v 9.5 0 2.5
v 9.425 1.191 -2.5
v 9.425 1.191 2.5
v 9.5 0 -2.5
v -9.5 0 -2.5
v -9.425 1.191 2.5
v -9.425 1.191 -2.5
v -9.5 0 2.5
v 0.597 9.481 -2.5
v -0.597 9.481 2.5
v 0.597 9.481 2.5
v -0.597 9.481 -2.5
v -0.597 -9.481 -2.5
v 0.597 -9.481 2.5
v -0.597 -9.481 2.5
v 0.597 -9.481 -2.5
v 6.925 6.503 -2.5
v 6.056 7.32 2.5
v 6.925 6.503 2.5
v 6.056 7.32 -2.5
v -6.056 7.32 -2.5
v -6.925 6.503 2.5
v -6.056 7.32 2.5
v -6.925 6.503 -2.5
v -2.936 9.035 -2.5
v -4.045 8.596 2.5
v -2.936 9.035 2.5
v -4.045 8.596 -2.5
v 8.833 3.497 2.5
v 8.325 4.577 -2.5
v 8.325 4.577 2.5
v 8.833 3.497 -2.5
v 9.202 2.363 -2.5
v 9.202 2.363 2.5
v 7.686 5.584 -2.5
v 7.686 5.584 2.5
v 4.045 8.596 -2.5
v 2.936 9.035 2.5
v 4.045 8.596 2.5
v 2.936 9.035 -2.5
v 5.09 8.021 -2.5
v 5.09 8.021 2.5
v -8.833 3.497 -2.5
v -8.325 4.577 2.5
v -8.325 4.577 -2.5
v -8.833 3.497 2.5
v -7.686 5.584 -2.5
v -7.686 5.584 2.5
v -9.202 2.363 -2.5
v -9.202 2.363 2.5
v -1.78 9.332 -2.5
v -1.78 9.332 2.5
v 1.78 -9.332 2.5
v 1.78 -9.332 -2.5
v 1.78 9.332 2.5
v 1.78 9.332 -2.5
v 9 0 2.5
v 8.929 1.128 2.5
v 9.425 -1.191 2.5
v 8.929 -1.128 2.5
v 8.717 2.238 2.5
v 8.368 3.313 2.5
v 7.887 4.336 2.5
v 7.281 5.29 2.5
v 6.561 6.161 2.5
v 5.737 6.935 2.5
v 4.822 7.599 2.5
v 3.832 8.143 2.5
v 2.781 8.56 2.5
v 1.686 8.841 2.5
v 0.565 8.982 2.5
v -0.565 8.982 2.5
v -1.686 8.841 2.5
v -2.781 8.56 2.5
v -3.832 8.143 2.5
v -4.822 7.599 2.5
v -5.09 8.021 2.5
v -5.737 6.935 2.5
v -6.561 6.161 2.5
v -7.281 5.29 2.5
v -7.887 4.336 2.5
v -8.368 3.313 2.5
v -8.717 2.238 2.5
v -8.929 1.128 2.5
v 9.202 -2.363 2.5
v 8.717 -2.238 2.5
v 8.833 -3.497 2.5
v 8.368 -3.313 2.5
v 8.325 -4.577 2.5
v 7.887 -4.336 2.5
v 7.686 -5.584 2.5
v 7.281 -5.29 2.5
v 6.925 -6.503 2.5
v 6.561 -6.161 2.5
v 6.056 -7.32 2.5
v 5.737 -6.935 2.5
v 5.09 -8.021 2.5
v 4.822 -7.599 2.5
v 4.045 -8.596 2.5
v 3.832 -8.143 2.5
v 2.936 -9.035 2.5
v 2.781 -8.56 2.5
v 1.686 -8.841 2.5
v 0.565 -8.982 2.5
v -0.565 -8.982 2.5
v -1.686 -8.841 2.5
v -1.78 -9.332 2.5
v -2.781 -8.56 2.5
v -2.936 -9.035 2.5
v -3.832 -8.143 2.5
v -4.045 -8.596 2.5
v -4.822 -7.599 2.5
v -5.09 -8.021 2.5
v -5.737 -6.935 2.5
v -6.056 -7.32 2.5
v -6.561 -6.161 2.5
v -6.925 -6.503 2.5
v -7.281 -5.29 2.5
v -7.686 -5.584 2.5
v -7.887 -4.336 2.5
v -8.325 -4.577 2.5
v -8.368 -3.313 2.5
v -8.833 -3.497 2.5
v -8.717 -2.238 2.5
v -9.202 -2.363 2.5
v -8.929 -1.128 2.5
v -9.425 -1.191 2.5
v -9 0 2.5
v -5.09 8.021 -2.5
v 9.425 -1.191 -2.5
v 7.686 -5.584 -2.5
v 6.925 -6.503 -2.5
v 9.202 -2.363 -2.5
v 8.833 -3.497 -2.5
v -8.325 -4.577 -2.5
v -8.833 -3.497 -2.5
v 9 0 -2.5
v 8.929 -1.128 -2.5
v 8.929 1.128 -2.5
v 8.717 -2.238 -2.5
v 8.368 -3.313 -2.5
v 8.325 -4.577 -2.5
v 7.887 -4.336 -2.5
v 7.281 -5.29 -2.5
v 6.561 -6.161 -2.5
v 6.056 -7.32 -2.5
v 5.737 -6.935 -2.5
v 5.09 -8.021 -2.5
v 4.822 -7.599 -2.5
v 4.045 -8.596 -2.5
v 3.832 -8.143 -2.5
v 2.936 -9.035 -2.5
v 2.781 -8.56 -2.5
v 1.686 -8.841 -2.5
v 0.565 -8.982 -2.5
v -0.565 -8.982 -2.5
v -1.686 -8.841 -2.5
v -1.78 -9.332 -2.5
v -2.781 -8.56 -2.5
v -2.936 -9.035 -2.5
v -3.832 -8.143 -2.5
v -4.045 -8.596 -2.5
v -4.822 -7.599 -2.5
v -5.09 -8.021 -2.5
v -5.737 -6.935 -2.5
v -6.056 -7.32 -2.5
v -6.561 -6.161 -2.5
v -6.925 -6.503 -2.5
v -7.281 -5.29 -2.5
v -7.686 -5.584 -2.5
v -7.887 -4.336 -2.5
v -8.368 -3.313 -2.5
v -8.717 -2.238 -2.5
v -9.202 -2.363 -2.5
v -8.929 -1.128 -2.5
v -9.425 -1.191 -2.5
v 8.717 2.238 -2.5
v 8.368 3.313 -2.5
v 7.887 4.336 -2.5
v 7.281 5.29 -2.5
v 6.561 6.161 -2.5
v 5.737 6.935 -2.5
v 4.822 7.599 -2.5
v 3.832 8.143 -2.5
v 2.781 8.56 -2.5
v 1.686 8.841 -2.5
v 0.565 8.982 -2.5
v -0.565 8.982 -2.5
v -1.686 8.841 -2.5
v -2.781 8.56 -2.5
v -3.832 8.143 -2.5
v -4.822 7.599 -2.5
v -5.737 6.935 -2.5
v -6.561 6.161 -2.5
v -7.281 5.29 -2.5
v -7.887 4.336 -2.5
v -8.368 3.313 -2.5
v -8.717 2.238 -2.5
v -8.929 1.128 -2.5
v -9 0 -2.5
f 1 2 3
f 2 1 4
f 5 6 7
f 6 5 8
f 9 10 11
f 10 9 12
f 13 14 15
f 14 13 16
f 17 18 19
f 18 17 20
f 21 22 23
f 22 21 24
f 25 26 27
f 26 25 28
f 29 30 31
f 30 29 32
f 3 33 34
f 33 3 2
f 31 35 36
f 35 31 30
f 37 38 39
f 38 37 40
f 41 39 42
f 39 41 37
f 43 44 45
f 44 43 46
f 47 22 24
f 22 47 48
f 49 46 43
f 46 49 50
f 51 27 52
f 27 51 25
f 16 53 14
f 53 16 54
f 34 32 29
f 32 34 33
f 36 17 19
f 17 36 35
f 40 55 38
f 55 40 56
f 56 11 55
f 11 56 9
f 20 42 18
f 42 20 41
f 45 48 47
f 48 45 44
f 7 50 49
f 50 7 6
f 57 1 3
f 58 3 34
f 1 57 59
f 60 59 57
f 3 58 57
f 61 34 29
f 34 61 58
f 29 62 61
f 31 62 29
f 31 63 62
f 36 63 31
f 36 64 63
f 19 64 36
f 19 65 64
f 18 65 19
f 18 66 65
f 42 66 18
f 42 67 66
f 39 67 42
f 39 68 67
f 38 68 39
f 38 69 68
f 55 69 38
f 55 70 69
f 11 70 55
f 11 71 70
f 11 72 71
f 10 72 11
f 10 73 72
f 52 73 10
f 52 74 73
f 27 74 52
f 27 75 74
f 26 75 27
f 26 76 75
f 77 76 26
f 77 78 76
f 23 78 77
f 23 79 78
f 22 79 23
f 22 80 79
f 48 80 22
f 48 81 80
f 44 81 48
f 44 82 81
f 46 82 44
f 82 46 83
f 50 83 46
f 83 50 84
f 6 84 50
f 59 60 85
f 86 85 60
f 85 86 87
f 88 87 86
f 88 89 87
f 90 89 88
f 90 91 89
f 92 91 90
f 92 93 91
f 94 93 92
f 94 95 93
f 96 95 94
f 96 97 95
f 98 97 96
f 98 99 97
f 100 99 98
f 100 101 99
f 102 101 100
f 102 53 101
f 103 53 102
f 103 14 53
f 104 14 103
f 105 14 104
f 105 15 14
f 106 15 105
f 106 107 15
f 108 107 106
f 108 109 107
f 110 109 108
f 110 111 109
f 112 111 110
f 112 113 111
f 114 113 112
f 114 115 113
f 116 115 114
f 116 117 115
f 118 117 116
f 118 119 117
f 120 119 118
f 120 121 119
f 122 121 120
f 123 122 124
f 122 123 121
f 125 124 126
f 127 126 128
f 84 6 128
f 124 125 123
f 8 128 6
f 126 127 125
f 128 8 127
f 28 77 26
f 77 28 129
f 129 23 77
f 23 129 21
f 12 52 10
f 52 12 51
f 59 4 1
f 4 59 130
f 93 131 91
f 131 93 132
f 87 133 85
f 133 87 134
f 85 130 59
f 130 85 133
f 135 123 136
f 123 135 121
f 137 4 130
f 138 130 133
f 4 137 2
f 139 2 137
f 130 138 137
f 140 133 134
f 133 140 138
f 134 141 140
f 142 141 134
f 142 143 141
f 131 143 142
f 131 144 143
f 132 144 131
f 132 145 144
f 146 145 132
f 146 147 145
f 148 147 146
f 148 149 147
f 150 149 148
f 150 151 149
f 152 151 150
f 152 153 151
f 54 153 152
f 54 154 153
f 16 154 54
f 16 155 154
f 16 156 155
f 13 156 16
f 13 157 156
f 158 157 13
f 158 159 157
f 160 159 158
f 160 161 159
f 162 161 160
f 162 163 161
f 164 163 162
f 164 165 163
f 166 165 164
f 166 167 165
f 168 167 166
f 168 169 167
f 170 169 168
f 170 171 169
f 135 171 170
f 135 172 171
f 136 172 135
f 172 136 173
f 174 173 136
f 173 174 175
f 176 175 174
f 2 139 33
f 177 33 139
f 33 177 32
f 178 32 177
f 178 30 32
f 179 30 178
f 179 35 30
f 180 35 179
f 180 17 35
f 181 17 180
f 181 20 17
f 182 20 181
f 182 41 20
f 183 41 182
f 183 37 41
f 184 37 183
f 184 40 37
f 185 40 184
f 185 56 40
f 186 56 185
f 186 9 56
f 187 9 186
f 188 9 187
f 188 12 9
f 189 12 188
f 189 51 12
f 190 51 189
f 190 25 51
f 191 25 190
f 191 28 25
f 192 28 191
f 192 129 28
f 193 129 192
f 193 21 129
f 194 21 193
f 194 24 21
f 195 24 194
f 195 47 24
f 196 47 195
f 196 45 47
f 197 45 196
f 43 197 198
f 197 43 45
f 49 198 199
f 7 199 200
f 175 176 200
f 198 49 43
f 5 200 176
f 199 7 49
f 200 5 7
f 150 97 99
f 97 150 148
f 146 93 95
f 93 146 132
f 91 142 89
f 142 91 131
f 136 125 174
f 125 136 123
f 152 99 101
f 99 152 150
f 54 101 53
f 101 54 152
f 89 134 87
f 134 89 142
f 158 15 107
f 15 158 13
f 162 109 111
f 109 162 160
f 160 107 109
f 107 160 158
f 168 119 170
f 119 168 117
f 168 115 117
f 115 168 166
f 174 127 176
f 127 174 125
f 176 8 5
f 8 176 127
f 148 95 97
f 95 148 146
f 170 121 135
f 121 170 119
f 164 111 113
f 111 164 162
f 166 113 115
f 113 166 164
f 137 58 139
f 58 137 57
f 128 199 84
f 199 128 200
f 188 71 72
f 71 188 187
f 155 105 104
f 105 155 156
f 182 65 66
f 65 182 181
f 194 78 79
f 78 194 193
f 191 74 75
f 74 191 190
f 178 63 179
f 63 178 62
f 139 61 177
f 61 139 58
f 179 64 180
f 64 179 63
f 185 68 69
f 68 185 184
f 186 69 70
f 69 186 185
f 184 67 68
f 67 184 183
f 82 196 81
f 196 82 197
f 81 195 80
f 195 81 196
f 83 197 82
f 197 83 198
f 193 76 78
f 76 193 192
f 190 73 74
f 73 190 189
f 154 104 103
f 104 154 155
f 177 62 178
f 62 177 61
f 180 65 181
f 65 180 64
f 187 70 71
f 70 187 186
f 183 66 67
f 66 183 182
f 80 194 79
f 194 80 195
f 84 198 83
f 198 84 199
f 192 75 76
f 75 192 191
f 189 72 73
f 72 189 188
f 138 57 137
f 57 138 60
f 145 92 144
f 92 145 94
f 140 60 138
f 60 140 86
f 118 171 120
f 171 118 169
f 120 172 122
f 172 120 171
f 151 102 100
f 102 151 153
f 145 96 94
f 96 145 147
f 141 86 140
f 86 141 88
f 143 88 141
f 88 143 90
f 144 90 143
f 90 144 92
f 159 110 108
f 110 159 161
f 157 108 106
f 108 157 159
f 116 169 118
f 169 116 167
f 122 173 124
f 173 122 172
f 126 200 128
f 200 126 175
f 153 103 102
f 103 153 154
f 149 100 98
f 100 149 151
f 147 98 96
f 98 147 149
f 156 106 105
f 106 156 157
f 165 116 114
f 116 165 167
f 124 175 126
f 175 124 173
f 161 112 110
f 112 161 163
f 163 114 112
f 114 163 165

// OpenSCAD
$fn = 50;


difference() {
	union() {
		translate(v = [0, 0, -2.5000000000]) {
			cylinder(h = 5, r = 9.5000000000);
		}
	}
	union() {
		translate(v = [0, 0, -100.0000000000]) {
			cylinder(h = 200, r = 9);
		}
	}
}
